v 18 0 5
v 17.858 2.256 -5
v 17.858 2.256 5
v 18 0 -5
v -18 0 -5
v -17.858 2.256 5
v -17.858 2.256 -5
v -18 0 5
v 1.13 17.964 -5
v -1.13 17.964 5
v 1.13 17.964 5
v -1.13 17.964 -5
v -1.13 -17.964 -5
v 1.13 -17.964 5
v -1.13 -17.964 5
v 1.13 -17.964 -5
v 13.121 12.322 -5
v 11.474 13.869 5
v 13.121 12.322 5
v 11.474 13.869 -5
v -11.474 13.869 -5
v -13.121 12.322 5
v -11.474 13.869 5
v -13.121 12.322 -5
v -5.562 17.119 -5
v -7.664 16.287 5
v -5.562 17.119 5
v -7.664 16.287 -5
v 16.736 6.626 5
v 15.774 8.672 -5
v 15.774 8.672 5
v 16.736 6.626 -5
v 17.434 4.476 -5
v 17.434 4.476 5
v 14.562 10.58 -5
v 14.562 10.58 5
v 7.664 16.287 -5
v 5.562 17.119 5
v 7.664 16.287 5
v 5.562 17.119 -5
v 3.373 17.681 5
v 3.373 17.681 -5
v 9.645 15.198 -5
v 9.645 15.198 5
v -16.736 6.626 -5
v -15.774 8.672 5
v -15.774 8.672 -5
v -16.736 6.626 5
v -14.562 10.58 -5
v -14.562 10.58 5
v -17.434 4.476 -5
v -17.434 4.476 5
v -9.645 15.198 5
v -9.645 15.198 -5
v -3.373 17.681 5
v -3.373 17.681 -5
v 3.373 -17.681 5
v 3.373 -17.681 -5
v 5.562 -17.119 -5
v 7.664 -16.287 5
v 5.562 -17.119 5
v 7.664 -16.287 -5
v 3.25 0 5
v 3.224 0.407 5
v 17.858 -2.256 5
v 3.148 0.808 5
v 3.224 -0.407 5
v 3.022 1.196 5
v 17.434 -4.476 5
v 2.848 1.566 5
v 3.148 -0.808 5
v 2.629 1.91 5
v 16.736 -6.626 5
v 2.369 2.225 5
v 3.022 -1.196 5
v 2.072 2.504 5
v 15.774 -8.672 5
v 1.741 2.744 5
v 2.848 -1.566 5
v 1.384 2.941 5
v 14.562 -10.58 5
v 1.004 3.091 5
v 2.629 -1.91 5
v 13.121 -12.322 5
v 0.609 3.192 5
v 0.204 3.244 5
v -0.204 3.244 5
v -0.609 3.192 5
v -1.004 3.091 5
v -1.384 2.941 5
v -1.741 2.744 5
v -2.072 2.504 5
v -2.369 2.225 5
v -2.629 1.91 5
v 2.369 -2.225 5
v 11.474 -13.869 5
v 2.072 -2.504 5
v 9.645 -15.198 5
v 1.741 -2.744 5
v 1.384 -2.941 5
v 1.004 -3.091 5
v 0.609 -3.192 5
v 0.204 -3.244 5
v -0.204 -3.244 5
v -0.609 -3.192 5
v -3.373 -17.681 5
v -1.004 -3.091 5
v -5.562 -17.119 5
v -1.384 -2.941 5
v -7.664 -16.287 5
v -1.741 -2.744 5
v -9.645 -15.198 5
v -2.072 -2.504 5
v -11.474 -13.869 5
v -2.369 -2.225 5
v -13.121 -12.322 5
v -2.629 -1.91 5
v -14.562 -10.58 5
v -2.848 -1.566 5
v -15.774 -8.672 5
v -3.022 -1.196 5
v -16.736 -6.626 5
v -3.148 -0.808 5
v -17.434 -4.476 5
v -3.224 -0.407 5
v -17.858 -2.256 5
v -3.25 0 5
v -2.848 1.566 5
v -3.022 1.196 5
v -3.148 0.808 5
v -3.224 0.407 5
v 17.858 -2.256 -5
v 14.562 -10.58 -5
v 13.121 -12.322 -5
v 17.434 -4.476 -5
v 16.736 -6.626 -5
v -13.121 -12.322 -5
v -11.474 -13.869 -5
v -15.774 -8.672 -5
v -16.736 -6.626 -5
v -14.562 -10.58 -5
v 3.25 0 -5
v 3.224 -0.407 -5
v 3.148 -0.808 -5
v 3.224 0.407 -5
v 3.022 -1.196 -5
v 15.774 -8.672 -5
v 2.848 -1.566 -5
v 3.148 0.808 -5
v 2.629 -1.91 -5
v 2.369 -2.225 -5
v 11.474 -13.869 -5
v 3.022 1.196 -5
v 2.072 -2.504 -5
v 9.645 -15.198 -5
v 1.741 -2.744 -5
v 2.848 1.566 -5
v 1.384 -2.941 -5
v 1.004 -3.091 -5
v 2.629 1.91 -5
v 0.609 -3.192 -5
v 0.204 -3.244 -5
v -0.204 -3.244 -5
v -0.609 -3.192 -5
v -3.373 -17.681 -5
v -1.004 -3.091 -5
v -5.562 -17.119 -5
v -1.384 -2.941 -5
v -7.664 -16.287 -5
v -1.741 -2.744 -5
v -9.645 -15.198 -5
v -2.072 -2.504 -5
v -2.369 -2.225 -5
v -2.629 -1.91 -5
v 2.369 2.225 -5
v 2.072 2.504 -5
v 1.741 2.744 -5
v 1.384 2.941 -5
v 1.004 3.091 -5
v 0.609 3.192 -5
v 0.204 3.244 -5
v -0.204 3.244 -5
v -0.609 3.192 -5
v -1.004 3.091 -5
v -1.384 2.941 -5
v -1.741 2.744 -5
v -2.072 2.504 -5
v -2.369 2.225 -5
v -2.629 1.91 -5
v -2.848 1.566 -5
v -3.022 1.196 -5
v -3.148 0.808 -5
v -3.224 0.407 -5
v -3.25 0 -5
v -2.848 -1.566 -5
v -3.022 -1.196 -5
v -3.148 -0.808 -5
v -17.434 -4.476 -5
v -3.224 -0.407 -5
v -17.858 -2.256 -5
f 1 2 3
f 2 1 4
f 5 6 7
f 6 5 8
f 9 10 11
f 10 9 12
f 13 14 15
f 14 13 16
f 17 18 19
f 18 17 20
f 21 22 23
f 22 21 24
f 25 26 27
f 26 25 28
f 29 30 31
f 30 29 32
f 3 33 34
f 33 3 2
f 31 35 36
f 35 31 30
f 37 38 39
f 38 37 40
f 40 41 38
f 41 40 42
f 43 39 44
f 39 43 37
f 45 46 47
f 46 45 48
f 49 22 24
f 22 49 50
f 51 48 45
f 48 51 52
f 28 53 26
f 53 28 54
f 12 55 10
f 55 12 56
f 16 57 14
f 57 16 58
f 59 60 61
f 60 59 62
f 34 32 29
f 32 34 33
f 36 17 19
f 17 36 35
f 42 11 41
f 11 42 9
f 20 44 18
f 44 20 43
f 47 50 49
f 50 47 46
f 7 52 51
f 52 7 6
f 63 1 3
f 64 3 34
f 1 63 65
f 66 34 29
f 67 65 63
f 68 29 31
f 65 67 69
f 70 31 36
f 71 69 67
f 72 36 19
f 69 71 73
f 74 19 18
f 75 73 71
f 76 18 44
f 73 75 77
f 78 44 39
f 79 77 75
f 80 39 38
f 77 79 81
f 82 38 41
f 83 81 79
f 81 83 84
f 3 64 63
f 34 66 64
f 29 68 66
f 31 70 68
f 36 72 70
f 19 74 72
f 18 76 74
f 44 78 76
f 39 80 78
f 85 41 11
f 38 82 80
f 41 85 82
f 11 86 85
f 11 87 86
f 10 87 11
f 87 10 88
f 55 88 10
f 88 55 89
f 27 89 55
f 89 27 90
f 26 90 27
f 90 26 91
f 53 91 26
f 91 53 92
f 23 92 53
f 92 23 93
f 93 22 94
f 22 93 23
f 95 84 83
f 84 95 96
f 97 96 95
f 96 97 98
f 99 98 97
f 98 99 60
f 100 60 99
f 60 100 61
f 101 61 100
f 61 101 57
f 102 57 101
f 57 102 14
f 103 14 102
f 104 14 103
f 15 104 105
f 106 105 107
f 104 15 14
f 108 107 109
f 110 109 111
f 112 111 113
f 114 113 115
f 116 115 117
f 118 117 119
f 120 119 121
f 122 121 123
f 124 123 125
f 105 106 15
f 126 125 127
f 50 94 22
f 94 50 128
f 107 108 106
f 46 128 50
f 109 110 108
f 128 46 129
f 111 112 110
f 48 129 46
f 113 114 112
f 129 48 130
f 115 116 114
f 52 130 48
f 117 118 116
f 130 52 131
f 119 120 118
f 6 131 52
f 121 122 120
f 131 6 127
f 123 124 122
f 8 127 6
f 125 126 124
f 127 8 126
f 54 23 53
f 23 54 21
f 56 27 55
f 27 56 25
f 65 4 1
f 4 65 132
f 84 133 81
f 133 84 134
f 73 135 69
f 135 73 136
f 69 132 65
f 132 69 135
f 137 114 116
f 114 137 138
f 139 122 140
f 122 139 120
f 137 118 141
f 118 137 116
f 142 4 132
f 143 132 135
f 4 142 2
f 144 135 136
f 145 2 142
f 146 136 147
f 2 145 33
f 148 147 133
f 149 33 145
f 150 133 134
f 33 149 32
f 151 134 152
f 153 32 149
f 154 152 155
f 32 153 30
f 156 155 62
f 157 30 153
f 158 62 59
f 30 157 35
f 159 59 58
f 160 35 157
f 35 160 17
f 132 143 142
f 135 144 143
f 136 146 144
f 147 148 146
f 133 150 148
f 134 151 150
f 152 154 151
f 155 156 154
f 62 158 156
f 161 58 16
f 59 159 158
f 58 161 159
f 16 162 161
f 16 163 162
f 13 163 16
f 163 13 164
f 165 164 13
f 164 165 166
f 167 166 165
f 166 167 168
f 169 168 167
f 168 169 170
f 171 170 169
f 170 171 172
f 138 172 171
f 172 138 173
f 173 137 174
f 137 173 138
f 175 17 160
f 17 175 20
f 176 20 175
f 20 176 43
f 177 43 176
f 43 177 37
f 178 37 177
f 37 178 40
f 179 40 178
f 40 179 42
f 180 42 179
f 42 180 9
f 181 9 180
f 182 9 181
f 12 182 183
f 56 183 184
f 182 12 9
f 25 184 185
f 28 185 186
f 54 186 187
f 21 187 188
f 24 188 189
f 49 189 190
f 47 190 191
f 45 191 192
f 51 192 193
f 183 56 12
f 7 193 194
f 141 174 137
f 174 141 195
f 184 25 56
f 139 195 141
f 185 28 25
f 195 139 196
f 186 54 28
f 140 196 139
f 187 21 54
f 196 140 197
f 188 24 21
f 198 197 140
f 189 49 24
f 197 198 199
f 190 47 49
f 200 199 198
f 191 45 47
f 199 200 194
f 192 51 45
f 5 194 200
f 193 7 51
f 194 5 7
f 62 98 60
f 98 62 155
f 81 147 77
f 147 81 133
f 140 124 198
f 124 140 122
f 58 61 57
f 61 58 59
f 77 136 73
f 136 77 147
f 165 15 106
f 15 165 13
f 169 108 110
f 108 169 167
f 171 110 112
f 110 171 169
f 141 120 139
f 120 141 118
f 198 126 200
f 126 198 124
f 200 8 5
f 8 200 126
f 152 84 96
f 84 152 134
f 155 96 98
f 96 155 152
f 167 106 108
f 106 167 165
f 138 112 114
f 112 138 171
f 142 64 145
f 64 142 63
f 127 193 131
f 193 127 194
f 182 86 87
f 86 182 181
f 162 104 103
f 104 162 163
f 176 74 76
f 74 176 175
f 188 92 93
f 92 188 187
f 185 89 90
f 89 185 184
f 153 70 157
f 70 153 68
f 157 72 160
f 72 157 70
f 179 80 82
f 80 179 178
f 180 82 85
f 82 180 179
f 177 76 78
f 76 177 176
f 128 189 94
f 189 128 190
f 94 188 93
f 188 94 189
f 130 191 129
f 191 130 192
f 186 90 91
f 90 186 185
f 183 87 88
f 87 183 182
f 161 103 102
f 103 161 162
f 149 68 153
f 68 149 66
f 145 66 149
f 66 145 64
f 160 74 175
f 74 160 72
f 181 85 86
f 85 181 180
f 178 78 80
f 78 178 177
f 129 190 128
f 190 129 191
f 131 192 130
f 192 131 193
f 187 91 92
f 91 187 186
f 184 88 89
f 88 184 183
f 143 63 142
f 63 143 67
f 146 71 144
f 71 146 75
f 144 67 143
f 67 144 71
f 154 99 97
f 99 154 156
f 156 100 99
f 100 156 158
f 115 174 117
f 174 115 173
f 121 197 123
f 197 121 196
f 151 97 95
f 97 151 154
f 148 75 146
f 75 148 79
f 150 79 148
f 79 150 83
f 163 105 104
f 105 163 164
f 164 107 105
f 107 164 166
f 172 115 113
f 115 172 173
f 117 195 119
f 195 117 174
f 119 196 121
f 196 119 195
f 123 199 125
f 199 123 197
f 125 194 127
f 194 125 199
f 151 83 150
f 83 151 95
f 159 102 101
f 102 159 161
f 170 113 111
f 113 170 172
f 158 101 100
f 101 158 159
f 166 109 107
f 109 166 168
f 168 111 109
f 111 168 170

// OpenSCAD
$fn = 50;


difference() {
	union() {
		translate(v = [0, 0, -5.0000000000]) {
			cylinder(h = 10, r = 18.0000000000);
		}
	}
	union() {
		translate(v = [0, 0, -100.0000000000]) {
			cylinder(h = 200, r = 3.2500000000);
		}
	}
}
